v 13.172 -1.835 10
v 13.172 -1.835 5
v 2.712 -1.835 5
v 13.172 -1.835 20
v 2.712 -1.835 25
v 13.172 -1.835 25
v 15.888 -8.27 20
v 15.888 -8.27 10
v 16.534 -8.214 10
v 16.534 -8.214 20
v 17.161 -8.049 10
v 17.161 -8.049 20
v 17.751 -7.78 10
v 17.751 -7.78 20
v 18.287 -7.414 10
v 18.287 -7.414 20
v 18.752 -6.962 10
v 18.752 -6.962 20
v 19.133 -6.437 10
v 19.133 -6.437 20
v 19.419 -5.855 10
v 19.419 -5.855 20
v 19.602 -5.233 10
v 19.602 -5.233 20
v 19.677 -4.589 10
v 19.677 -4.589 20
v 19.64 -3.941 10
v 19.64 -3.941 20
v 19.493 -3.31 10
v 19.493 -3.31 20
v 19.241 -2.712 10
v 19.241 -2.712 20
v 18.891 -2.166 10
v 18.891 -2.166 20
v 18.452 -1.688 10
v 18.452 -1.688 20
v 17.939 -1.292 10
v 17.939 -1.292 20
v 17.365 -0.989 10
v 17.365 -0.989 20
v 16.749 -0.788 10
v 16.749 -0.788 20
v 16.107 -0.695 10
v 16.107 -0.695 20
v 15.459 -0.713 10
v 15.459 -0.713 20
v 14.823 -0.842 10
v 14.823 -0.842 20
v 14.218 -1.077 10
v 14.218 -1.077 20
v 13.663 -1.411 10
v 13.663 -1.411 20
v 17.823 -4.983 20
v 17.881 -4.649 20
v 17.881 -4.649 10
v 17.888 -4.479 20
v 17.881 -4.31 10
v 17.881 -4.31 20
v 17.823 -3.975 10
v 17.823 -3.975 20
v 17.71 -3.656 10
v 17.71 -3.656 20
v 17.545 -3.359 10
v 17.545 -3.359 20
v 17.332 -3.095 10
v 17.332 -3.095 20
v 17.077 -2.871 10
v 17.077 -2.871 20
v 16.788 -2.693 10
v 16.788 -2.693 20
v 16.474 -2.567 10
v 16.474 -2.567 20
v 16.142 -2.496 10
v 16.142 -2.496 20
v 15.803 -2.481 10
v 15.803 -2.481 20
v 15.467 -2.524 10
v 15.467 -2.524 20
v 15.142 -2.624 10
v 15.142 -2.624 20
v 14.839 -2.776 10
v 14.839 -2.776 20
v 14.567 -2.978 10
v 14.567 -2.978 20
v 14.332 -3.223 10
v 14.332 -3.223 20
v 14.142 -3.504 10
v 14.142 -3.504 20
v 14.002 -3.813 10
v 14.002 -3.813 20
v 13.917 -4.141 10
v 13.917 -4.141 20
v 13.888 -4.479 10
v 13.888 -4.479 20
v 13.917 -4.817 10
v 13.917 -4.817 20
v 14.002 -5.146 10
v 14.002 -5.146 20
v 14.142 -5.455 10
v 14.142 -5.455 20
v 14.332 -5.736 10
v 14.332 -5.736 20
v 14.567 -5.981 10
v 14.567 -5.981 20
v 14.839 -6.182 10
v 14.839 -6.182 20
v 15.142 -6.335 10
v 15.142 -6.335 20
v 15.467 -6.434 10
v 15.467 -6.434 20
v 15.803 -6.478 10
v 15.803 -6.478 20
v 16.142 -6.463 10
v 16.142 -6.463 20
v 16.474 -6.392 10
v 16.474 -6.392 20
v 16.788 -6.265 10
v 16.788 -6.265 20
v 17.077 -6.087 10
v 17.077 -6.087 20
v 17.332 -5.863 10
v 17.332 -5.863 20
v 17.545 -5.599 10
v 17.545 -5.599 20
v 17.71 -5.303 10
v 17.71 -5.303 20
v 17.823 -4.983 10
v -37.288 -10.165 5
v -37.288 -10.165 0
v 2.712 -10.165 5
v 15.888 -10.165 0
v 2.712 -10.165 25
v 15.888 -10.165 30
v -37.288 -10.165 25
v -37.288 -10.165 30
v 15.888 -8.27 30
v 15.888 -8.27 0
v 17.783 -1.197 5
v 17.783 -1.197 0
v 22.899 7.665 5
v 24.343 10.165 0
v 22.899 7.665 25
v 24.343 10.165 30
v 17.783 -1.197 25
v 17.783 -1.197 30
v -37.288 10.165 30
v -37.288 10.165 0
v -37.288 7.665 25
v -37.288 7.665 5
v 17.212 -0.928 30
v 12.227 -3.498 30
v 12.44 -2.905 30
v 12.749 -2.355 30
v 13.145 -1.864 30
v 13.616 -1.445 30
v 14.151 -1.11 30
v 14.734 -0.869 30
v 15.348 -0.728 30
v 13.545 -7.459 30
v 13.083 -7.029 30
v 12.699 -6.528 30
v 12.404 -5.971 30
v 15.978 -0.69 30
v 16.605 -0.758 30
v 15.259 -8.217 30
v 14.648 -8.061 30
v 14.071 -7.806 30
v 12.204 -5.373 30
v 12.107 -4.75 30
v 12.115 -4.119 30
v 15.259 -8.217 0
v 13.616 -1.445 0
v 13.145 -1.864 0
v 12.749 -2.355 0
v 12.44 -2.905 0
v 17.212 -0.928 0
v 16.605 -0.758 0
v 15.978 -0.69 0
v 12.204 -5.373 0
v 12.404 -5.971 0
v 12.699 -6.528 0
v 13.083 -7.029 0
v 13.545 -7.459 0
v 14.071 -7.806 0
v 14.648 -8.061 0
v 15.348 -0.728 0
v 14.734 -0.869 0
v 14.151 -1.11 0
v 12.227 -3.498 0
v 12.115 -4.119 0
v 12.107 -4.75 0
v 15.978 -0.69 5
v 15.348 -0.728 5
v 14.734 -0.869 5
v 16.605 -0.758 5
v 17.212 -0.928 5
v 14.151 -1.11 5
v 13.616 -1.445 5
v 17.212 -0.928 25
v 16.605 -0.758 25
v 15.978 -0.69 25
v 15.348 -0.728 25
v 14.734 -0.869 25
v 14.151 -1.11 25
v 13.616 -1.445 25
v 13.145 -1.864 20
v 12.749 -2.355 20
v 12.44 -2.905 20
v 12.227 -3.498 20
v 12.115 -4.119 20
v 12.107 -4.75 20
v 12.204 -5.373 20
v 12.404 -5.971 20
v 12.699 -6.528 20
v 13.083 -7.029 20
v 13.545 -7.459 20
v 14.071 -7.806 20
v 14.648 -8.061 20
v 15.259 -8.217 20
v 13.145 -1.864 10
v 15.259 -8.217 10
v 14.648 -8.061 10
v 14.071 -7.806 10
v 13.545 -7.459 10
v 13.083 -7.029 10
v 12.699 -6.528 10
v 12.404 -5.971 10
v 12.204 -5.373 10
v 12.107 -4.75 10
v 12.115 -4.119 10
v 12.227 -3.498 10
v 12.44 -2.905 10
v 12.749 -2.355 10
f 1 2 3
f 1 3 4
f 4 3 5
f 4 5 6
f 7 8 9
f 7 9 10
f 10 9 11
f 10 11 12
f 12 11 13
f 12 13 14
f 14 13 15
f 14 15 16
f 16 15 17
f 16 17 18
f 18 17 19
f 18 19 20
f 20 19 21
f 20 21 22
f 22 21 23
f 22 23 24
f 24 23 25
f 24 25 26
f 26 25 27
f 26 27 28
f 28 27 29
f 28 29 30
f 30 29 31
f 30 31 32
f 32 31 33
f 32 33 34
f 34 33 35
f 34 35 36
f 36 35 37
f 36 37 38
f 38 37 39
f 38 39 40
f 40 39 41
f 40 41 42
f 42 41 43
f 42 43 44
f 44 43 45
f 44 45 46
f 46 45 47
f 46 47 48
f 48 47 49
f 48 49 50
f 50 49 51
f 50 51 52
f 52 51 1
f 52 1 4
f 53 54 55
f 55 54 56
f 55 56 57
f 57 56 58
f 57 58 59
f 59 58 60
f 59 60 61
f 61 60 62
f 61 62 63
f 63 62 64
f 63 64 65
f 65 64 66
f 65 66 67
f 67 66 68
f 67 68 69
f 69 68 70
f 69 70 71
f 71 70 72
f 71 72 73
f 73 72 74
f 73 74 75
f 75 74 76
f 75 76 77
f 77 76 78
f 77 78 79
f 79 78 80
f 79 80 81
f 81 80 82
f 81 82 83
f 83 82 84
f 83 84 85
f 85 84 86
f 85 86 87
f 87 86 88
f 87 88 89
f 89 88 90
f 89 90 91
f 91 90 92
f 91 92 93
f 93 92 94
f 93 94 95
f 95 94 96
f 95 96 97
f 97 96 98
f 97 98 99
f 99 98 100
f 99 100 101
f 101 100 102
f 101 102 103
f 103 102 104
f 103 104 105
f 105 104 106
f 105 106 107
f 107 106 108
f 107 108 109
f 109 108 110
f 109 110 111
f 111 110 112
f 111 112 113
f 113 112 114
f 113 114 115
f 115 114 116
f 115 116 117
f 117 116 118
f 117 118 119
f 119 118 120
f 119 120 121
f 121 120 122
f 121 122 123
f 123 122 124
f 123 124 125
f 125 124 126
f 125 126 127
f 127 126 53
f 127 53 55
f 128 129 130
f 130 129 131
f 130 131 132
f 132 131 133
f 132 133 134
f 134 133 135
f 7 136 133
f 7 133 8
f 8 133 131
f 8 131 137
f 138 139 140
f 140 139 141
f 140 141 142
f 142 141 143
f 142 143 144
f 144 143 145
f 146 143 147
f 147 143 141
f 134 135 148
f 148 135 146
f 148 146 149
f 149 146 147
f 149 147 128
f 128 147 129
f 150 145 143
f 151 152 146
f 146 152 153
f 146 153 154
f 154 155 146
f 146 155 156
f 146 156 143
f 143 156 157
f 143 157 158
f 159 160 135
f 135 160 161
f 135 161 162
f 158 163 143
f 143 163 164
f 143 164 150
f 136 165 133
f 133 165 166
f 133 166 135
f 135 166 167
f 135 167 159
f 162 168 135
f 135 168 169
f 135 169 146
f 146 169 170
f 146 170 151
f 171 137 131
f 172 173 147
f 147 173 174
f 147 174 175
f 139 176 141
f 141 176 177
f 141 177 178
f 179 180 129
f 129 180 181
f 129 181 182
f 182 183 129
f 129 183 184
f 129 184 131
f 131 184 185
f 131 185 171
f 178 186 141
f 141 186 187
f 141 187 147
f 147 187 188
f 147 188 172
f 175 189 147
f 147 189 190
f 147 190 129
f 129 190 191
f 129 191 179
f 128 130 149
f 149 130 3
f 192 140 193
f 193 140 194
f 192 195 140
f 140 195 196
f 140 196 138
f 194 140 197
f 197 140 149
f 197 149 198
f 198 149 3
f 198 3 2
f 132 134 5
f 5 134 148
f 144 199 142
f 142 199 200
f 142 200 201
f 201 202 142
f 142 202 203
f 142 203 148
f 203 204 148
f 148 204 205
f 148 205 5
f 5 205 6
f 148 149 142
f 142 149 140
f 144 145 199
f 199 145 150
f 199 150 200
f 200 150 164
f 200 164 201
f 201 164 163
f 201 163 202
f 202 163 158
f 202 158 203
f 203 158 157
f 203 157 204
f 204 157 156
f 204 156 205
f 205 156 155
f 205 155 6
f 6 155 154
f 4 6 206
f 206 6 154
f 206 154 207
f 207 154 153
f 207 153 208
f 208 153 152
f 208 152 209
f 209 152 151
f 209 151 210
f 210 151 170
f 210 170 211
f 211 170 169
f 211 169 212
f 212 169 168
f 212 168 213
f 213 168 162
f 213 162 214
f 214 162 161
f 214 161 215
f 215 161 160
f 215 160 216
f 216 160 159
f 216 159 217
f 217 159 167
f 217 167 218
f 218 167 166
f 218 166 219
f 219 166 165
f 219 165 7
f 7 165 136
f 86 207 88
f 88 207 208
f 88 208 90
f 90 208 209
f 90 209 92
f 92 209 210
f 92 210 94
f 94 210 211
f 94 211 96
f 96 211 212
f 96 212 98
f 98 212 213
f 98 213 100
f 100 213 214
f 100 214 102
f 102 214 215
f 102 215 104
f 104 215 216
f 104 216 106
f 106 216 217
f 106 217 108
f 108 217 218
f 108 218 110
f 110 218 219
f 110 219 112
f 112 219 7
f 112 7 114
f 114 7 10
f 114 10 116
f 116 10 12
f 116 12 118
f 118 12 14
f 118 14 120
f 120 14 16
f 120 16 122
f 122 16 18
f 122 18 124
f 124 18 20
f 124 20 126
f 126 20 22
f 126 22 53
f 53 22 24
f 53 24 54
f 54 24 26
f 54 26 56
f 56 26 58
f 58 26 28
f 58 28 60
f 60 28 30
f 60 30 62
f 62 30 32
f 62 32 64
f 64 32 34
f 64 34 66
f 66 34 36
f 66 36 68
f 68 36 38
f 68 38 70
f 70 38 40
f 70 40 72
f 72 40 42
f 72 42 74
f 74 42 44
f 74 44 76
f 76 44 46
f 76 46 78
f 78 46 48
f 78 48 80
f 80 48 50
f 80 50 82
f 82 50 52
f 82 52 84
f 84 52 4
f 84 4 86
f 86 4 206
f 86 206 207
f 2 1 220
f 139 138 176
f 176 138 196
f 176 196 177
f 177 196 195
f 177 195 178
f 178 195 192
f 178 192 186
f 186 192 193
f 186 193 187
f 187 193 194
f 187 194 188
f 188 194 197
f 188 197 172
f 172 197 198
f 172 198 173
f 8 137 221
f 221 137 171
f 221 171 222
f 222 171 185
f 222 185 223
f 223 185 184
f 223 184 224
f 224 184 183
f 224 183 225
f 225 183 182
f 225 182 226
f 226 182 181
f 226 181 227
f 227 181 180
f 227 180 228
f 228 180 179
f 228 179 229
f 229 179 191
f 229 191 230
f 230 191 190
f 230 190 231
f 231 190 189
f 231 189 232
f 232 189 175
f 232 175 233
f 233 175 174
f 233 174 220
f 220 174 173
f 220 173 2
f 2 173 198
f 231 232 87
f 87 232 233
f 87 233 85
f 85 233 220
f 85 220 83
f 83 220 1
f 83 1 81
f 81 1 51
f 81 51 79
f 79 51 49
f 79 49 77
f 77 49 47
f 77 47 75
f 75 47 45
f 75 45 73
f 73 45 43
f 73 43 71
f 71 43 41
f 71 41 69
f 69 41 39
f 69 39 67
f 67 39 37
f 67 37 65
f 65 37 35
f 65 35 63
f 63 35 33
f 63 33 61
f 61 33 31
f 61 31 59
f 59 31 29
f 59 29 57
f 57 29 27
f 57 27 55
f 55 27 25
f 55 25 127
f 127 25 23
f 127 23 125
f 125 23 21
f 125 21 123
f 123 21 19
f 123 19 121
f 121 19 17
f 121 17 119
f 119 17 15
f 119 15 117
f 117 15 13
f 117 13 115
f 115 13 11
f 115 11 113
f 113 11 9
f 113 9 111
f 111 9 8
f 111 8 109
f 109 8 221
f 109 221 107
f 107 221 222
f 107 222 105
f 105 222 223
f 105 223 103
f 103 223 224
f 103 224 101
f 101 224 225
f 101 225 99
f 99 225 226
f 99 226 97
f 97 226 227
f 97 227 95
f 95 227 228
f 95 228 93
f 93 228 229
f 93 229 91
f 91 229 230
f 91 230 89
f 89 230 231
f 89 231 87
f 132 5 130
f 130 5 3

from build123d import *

# Parameters (mm, degrees)
SKETCH_1_R          = 2
EXTRUDE_1_DEPTH     = 30
SKETCH_2_W          = 20
SKETCH_2_H          = 9.5
CUT_EXTRUDE_1_DEPTH = 70.293872581
EXTRUDE_START       = -30
SKETCH_3_R          = 3.79021957
SKETCH_3_R_2        = 2
EXTRUDE_2_DEPTH     = 30
CUT_EXTRUDE_START   = -10
SKETCH_4_R          = 3.79021957
SKETCH_4_R_2        = 2
CUT_EXTRUDE_2_DEPTH = 10
SKETCH_5_R          = 3.79021957
SKETCH_5_R_2        = 2
CUT_EXTRUDE_3_DEPTH = 10
SKETCH_6_W          = 20
SKETCH_6_H          = 8.329300022
CUT_EXTRUDE_4_DEPTH = 40


with BuildPart() as part:
    # 스케치1 → 보스-돌출1 (new body)
    # profile 1 of 6: a face of its own
    with BuildSketch(Plane.XY):
        with BuildLine():
            Line((-13.8475309, -1.196894222), (-7.287940278, 10.164650011))
            Line((-7.287940278, 10.164650011), (-37.287940278, 10.164650011))
            Line((-37.287940278, 10.164650011), (-37.287940278, -10.164650011))
            Line((-37.287940278, -10.164650011), (-15.742640685, -10.164650011))
            Line((-15.742640685, -10.164650011), (-15.742640685, -8.269540226))
            ThreePointArc((-15.742640685, -8.269540226), (-19.403711655, -3.498339646), (-13.8475309, -1.196894222))
        make_face()
    # profile 2 of 6: a face of its own
    with BuildSketch(Plane.XY):
        with BuildLine():
            ThreePointArc((-15.742640685, -8.269540226), (-12.081569715, -5.460301666), (-13.8475309, -1.196894222))
            ThreePointArc((-13.8475309, -1.196894222), (-19.403711655, -3.498339646), (-15.742640685, -8.269540226))
        make_face()
        with Locations((-15.742640685, -4.479320656)):
            Circle(SKETCH_1_R, mode=Mode.SUBTRACT)
    # profile 3 of 6: a face of its own
    with BuildSketch(Plane.XY):
        with Locations((-15.742640685, -4.479320656)):
            Circle(SKETCH_1_R)
    # profile 4 of 6: a face of its own
    with BuildSketch(Plane.XY):
        with BuildLine():
            Line((-7.287940278, -10.164650011), (-7.287940278, 10.164650011))
            Line((-7.287940278, 10.164650011), (-13.8475309, -1.196894222))
            ThreePointArc((-13.8475309, -1.196894222), (-12.081569715, -5.460301666), (-15.742640685, -8.269540226))
            Line((-15.742640685, -8.269540226), (-15.742640685, -10.164650011))
            Line((-15.742640685, -10.164650011), (-7.287940278, -10.164650011))
        make_face()
    # profile 5 of 6: a face of its own
    with BuildSketch(Plane.XY):
        with BuildLine():
            Line((7.433176247, 10.164650011), (-7.287940278, 10.164650011))
            Line((-7.287940278, 10.164650011), (-7.287940278, -10.164650011))
            Line((-7.287940278, -10.164650011), (15.887876654, -10.164650011))
            Line((15.887876654, -10.164650011), (15.887876654, -8.269540226))
            ThreePointArc((15.887876654, -8.269540226), (19.548947624, -5.460301666), (17.782986439, -1.196894222))
            ThreePointArc((17.782986439, -1.196894222), (15.887876654, -0.689101086), (13.992766869, -1.196894222))
            Line((13.992766869, -1.196894222), (7.433176247, 10.164650011))
        make_face()
        with Locations((15.887876654, -4.479320656)):
            Circle(SKETCH_1_R, mode=Mode.SUBTRACT)
    # profile 6 of 6: a face of its own
    with BuildSketch(Plane.XY):
        with BuildLine():
            Line((24.342577061, 10.164650011), (7.433176247, 10.164650011))
            Line((7.433176247, 10.164650011), (13.992766869, -1.196894222))
            ThreePointArc((13.992766869, -1.196894222), (15.887876654, -0.689101086), (17.782986439, -1.196894222))
            Line((17.782986439, -1.196894222), (24.342577061, 10.164650011))
        make_face()
    extrude(amount=EXTRUDE_1_DEPTH)

    # 스케치2 → 컷-돌출1 (cut, through all)
    with BuildSketch(Plane.ZY.offset(37.287940278)):
        with Locations((15, 2.914650011)):
            Rectangle(SKETCH_2_W, SKETCH_2_H)
    extrude(amount=-CUT_EXTRUDE_1_DEPTH, mode=Mode.SUBTRACT)

    # 스케치3 → 보스-돌출2 (add)
    with BuildSketch(Plane.XY.offset(30).offset(EXTRUDE_START)):
        with Locations((15.887876654, -4.479320656)):
            Circle(SKETCH_3_R)
        with Locations((15.887876654, -4.479320656)):
            Circle(SKETCH_3_R_2, mode=Mode.SUBTRACT)
    extrude(amount=EXTRUDE_2_DEPTH)

    # 스케치4 → 컷-돌출2 (cut)
    with BuildSketch(Plane.XY.offset(30).offset(CUT_EXTRUDE_START)):
        with Locations((15.887876654, -4.479320656)):
            Circle(SKETCH_4_R)
        with Locations((15.887876654, -4.479320656)):
            Circle(SKETCH_4_R_2, mode=Mode.SUBTRACT)
    extrude(amount=CUT_EXTRUDE_2_DEPTH, mode=Mode.SUBTRACT)

    # 스케치5 → 컷-돌출3 (cut)
    with BuildSketch(Plane(origin=(0, 0, 0), x_dir=(-1, 0, 0), z_dir=(0, 0, -1))):
        with Locations((-15.887876654, -4.479320656)):
            Circle(SKETCH_5_R)
        with Locations((-15.887876654, -4.479320656)):
            Circle(SKETCH_5_R_2, mode=Mode.SUBTRACT)
    extrude(amount=-CUT_EXTRUDE_3_DEPTH, mode=Mode.SUBTRACT)

    # 스케치6 → 컷-돌출4 (cut)
    with BuildSketch(Plane.ZY.offset(37.287940278)):
        with Locations((15, -6)):
            Rectangle(SKETCH_6_W, SKETCH_6_H)
    extrude(amount=-CUT_EXTRUDE_4_DEPTH, mode=Mode.SUBTRACT)


solid = part.part
